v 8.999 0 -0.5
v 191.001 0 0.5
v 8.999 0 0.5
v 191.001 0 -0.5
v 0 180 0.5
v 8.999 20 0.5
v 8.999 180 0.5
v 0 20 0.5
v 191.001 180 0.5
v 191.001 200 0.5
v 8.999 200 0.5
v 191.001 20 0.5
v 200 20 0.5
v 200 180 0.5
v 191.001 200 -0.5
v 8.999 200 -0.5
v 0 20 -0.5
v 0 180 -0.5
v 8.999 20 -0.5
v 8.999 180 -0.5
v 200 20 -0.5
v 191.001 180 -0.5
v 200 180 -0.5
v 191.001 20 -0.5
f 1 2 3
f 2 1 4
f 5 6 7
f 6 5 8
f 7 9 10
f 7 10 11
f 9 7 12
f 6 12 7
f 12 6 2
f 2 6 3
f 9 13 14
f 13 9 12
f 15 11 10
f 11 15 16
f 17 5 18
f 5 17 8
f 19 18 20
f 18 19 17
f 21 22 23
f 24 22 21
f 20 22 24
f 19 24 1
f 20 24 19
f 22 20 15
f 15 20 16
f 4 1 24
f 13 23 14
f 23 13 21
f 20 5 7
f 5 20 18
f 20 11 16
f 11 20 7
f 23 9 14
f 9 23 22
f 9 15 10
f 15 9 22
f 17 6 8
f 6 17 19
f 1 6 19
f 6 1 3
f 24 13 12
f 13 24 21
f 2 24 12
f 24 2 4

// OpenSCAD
// Prusa i3 Bed with binder clips on four sides

translate([100,100,0]) rotate(90) difference(){
    cube([200,200,1], center=true);
    
    translate([90,95.501,-1]) cube([20,9,5], center=true);
    translate([90,-95.501,-1]) cube([20,9,5], center=true);
    translate([-90,95.501,-1]) cube([20,9,5], center=true);
    translate([-90,-95.501,-1]) cube([20,9,5], center=true);
}
